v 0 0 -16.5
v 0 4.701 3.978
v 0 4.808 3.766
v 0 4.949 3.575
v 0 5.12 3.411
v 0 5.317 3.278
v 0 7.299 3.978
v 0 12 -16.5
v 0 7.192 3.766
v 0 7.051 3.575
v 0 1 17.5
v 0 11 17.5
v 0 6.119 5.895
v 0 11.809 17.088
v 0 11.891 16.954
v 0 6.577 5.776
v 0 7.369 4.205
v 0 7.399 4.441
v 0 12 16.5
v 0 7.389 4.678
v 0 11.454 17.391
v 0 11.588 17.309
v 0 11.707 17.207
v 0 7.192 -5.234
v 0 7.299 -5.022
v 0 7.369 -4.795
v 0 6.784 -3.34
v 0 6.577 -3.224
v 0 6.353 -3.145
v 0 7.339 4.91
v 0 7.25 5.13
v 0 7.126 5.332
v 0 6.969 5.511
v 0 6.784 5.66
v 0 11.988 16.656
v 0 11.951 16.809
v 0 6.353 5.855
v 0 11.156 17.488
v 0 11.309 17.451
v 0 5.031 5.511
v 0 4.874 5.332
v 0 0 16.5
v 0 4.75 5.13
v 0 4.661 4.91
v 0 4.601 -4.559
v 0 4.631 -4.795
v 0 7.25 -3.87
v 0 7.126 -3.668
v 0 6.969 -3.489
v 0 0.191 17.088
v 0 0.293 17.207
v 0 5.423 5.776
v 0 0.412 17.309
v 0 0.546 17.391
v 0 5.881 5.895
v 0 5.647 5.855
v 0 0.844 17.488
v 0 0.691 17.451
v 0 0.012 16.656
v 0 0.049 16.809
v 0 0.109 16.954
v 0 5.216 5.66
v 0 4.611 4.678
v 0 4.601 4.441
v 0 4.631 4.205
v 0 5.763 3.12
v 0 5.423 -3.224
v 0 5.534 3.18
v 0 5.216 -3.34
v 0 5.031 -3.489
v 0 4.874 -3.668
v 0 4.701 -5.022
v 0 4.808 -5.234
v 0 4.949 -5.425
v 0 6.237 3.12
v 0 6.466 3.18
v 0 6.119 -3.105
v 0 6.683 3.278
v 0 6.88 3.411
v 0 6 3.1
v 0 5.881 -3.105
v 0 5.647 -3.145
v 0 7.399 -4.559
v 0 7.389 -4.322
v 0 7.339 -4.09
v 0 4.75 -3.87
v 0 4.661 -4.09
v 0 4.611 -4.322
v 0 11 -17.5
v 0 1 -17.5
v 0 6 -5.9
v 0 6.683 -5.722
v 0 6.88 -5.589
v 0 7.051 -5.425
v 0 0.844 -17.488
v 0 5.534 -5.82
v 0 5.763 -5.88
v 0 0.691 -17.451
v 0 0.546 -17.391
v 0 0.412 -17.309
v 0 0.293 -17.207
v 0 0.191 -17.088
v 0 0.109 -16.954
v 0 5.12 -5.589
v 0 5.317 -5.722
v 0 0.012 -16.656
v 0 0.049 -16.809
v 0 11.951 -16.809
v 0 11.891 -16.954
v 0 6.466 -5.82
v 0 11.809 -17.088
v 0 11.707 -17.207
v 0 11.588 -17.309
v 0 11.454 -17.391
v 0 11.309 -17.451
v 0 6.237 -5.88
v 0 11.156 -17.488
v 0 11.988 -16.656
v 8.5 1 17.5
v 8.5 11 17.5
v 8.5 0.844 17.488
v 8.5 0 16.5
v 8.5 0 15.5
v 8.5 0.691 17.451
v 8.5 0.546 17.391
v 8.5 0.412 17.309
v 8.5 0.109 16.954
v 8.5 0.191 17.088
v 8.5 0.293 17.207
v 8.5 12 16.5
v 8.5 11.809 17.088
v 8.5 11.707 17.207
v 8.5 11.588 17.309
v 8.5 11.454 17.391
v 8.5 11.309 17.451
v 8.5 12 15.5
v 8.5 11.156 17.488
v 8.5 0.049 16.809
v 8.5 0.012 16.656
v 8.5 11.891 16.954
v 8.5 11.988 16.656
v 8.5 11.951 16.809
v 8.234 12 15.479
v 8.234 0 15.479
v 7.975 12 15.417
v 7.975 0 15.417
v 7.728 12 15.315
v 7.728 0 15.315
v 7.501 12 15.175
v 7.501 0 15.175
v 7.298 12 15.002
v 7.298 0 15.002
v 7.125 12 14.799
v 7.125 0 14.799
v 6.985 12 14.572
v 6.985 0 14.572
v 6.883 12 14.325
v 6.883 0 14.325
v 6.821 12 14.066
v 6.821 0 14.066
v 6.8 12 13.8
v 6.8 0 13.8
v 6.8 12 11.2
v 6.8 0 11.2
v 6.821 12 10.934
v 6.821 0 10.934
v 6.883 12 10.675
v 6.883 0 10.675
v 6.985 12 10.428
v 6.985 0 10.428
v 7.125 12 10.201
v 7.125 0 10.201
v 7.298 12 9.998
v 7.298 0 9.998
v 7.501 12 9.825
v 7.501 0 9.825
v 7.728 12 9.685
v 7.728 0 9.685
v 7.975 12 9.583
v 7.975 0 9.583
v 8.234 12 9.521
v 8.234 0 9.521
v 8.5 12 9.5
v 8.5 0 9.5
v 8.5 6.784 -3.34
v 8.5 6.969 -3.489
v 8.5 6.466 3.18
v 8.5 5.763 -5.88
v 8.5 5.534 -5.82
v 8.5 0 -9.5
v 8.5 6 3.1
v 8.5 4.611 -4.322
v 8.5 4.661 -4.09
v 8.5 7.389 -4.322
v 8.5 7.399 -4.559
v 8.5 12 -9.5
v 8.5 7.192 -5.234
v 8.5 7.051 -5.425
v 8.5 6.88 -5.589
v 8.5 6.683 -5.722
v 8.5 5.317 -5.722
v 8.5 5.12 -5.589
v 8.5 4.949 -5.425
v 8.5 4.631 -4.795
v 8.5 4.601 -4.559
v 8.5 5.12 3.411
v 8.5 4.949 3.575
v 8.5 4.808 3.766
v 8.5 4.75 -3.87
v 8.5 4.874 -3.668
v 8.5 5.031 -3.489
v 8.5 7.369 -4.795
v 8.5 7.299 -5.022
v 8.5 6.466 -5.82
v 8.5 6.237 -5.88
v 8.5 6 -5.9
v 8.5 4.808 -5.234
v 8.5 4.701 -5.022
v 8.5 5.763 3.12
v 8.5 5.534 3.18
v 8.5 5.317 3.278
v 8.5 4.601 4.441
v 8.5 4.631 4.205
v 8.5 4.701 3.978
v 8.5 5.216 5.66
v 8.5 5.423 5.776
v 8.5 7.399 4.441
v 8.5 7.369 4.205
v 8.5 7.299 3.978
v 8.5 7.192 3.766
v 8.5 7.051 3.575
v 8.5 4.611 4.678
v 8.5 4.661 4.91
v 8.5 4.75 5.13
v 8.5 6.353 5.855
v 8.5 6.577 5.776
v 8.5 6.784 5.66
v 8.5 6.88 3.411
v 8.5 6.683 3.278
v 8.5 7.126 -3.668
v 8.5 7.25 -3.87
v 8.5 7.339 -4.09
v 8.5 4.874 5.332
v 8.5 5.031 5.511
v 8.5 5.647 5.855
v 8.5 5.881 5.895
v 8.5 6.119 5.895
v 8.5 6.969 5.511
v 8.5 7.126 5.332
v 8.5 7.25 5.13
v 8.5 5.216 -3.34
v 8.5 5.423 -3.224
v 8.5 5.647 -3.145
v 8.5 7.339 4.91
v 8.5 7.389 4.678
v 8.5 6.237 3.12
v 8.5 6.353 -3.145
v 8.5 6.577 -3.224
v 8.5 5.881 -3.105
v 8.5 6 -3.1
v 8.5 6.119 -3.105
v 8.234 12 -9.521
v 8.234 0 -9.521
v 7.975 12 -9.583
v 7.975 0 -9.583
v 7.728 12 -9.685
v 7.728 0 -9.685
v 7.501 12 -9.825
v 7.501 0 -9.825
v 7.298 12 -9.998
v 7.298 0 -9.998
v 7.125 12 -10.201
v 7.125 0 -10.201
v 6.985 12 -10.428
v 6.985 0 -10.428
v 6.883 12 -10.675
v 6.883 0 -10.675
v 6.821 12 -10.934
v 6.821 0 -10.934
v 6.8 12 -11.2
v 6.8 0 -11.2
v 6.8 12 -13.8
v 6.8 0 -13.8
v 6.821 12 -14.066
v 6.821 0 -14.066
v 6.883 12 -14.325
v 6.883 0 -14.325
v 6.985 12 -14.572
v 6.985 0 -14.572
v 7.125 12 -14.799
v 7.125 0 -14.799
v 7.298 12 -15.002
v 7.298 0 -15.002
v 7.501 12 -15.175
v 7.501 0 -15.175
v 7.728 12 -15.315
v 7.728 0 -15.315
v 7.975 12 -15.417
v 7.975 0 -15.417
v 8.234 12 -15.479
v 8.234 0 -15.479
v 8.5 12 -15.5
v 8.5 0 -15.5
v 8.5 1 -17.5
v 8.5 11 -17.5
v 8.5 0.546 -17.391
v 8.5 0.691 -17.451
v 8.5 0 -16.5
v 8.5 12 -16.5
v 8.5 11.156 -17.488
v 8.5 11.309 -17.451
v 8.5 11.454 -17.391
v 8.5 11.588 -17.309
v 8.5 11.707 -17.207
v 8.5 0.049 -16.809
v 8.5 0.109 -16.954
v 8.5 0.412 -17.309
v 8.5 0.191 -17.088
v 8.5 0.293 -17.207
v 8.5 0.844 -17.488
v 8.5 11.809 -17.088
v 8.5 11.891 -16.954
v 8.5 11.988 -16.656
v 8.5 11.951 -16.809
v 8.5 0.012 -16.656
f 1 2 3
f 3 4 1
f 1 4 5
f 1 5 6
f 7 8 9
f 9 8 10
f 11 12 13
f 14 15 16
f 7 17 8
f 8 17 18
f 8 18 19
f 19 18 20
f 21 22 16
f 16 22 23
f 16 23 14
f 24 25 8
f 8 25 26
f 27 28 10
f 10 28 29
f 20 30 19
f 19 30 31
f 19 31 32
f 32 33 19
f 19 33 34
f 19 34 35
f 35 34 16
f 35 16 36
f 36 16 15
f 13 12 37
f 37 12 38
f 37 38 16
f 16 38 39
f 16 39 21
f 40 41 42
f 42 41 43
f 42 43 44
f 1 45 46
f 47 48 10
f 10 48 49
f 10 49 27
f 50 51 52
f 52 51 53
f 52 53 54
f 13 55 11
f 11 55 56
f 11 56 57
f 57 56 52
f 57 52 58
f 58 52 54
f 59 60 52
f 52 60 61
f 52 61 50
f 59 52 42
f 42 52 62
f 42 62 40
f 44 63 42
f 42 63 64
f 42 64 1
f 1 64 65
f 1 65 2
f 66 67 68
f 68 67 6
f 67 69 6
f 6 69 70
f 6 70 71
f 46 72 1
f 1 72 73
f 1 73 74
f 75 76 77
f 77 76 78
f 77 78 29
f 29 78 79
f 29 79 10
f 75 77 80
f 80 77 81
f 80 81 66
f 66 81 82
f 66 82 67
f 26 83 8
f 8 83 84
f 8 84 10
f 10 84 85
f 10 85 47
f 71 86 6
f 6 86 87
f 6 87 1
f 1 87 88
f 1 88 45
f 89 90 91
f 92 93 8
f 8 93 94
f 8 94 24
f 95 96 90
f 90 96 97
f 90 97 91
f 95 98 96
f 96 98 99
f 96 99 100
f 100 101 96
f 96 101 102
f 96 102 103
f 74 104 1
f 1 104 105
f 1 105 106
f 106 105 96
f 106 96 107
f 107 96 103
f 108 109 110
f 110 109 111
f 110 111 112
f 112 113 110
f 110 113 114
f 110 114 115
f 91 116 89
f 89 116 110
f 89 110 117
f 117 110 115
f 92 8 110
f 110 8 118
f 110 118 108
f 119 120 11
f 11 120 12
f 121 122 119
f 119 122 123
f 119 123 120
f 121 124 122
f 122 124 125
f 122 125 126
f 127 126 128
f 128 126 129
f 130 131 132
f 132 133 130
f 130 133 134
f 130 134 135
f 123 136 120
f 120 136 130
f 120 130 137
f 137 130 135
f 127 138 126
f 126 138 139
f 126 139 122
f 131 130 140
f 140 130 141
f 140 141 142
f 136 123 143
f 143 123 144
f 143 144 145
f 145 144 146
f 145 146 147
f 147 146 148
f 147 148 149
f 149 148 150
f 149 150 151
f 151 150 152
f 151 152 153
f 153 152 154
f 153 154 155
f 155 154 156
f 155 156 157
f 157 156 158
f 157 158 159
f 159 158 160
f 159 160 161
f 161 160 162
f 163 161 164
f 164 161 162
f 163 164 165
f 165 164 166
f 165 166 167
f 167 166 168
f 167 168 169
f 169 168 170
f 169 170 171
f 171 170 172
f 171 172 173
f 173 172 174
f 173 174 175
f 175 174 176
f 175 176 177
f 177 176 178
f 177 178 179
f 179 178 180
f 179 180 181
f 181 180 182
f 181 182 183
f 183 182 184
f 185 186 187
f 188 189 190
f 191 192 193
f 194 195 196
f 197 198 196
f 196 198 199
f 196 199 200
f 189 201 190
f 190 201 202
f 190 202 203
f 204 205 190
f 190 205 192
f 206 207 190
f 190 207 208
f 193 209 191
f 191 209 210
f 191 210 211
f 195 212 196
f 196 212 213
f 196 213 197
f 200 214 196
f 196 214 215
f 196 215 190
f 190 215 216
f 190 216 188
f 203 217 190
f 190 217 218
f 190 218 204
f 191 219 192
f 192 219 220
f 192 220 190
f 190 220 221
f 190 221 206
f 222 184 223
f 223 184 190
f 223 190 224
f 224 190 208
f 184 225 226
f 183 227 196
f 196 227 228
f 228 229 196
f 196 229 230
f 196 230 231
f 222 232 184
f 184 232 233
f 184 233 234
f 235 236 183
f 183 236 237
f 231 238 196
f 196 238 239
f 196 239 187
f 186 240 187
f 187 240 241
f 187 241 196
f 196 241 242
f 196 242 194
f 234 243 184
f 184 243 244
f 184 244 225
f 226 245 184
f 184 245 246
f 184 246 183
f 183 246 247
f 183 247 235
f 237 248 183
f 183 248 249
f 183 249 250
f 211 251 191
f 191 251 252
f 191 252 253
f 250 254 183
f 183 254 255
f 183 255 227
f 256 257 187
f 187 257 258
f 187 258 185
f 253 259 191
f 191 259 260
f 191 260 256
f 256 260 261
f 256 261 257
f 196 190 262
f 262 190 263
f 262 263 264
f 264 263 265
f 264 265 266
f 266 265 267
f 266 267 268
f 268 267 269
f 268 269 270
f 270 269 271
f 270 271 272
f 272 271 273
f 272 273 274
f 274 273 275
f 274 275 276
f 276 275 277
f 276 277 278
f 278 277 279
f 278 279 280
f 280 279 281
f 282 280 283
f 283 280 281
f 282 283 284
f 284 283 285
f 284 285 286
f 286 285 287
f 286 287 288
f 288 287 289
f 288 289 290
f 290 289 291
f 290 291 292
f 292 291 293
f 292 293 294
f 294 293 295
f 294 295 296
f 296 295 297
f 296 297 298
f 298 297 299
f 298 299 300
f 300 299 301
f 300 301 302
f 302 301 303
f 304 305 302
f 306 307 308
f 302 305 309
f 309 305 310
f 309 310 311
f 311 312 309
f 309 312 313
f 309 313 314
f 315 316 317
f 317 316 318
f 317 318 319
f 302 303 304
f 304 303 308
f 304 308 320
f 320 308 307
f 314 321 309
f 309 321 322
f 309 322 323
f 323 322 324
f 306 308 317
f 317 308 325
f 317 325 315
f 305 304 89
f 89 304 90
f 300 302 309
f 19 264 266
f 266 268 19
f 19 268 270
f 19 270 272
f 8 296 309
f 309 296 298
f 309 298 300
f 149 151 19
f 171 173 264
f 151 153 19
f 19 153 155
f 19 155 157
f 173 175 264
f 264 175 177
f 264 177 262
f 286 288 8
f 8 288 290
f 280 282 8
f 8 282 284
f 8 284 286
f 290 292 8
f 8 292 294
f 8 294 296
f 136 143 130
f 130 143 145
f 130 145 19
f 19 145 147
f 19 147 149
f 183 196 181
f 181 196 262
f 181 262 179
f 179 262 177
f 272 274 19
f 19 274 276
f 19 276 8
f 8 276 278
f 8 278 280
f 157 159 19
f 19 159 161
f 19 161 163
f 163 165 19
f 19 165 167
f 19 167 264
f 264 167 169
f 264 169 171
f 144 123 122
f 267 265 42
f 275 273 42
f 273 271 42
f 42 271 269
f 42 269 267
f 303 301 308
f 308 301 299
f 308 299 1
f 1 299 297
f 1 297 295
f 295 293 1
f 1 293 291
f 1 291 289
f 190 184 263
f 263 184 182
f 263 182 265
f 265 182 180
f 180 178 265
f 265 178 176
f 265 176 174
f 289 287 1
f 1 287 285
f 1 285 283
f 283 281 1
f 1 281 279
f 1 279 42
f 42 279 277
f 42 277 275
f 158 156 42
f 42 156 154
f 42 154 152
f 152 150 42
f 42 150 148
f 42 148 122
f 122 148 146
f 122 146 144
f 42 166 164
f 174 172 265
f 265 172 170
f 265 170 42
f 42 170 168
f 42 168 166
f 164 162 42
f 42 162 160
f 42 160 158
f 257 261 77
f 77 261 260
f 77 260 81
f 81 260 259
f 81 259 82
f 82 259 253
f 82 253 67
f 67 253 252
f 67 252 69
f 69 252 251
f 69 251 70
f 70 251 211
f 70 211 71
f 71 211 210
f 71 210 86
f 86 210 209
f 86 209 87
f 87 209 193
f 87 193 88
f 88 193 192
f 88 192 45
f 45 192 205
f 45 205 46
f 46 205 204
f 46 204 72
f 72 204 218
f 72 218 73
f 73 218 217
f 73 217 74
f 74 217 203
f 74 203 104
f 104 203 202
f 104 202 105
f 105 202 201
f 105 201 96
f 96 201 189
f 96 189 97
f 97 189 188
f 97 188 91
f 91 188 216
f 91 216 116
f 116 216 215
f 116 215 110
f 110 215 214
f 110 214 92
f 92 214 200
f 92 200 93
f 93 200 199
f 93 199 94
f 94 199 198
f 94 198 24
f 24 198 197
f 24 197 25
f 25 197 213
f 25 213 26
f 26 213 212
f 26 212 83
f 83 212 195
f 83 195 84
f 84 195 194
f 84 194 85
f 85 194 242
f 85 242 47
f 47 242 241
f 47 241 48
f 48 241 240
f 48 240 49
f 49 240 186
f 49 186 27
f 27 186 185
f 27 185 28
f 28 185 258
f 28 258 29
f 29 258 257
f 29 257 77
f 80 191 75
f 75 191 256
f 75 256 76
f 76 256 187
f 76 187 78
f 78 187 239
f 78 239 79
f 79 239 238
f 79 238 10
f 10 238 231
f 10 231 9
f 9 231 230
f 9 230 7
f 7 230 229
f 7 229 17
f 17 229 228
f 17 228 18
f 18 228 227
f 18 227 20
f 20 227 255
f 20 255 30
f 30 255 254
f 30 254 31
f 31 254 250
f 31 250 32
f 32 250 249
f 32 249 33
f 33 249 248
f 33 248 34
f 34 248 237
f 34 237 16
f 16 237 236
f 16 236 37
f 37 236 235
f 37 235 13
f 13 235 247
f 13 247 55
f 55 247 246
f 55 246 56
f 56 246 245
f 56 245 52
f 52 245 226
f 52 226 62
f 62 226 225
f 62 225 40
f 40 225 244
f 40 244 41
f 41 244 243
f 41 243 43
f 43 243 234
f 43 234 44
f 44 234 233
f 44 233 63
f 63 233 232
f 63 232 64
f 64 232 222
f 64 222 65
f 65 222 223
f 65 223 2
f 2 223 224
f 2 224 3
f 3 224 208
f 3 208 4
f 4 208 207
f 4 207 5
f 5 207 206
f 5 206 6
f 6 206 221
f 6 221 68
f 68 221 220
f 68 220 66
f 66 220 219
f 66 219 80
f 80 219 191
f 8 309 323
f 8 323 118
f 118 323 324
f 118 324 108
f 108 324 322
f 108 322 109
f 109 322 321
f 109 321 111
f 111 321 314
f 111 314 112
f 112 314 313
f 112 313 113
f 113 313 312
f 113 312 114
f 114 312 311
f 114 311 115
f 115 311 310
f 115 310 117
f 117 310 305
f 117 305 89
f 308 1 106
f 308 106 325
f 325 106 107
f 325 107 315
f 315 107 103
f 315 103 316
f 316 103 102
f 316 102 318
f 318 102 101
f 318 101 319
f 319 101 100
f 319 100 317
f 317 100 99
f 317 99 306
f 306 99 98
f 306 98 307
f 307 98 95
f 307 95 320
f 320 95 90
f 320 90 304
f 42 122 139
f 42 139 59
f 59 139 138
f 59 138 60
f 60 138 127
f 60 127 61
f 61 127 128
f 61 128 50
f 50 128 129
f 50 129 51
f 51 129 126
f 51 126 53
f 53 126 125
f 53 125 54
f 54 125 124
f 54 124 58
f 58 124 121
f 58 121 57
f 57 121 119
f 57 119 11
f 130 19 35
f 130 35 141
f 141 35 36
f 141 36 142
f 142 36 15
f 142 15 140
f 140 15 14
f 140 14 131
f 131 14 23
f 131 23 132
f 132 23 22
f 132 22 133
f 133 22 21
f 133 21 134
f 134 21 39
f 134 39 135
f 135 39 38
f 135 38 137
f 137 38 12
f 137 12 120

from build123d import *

# Parameters (mm, degrees)
BASE_DEPTH                = 12
CASE_MOUNTING_HOLES_REACH = 24.858
SKETCH2_R                 = 1.4
F_1MM_EDGE_FILLETS_R      = 1


with BuildPart() as part:
    # Sketch1 → Base (new body)
    with BuildSketch(Plane(origin=(0, 0, 0), x_dir=(1, 0, 0), z_dir=(0, 1, 0))):
        with BuildLine():
            Line((8.5, 17.5), (8.5, 15.5))
            ThreePointArc((8.5, 15.5), (7.297918472, 15.002081528), (6.8, 13.8))
            Line((6.8, 13.8), (6.8, 11.2))
            ThreePointArc((6.8, 11.2), (7.297918472, 9.997918472), (8.5, 9.5))
            Line((8.5, 9.5), (8.5, -9.5))
            ThreePointArc((8.5, -9.5), (7.297918472, -9.997918472), (6.8, -11.2))
            Line((6.8, -11.2), (6.8, -13.8))
            ThreePointArc((6.8, -13.8), (7.297918472, -15.002081528), (8.5, -15.5))
            Line((8.5, -15.5), (8.5, -17.5))
            Line((8.5, -17.5), (0, -17.5))
            Line((0, -17.5), (0, 17.5))
            Line((0, 17.5), (8.5, 17.5))
        make_face()
    extrude(amount=BASE_DEPTH)

    # Sketch2 → Case Mounting Holes (cut, up to next)
    with BuildSketch(Plane(origin=(8.5, 0, 0), x_dir=(0, 0, -1), z_dir=(1, 0, 0)), mode=Mode.PRIVATE) as case_mounting_holes_sk1:
        with Locations((-4.5, 6)):
            Circle(SKETCH2_R)
    case_mounting_holes_tool1 = extrude(case_mounting_holes_sk1.sketch, amount=-CASE_MOUNTING_HOLES_REACH, mode=Mode.PRIVATE) & part.part
    # Sketch2 → Case Mounting Holes (cut, up to next)
    with BuildSketch(Plane(origin=(8.5, 0, 0), x_dir=(0, 0, -1), z_dir=(1, 0, 0)), mode=Mode.PRIVATE) as case_mounting_holes_sk2:
        with Locations((4.5, 6)):
            Circle(SKETCH2_R)
    case_mounting_holes_tool2 = extrude(case_mounting_holes_sk2.sketch, amount=-CASE_MOUNTING_HOLES_REACH, mode=Mode.PRIVATE) & part.part
    add(case_mounting_holes_tool1.solids().sort_by_distance((8.5, 6, 4.5))[0], mode=Mode.SUBTRACT)
    add(case_mounting_holes_tool2.solids().sort_by_distance((8.5, 6, -4.5))[0], mode=Mode.SUBTRACT)

    # 1mm Edge Fillets
    f_1mm_edge_fillets_edges = [part.edges().sort_by_distance(p)[0] for p in [
        (4.25, 0, -17.5),
        (4.25, 0, 17.5),
        (4.25, 12, -17.5),
        (4.25, 12, 17.5),
    ]]
    fillet(f_1mm_edge_fillets_edges, radius=F_1MM_EDGE_FILLETS_R)


solid = part.part
